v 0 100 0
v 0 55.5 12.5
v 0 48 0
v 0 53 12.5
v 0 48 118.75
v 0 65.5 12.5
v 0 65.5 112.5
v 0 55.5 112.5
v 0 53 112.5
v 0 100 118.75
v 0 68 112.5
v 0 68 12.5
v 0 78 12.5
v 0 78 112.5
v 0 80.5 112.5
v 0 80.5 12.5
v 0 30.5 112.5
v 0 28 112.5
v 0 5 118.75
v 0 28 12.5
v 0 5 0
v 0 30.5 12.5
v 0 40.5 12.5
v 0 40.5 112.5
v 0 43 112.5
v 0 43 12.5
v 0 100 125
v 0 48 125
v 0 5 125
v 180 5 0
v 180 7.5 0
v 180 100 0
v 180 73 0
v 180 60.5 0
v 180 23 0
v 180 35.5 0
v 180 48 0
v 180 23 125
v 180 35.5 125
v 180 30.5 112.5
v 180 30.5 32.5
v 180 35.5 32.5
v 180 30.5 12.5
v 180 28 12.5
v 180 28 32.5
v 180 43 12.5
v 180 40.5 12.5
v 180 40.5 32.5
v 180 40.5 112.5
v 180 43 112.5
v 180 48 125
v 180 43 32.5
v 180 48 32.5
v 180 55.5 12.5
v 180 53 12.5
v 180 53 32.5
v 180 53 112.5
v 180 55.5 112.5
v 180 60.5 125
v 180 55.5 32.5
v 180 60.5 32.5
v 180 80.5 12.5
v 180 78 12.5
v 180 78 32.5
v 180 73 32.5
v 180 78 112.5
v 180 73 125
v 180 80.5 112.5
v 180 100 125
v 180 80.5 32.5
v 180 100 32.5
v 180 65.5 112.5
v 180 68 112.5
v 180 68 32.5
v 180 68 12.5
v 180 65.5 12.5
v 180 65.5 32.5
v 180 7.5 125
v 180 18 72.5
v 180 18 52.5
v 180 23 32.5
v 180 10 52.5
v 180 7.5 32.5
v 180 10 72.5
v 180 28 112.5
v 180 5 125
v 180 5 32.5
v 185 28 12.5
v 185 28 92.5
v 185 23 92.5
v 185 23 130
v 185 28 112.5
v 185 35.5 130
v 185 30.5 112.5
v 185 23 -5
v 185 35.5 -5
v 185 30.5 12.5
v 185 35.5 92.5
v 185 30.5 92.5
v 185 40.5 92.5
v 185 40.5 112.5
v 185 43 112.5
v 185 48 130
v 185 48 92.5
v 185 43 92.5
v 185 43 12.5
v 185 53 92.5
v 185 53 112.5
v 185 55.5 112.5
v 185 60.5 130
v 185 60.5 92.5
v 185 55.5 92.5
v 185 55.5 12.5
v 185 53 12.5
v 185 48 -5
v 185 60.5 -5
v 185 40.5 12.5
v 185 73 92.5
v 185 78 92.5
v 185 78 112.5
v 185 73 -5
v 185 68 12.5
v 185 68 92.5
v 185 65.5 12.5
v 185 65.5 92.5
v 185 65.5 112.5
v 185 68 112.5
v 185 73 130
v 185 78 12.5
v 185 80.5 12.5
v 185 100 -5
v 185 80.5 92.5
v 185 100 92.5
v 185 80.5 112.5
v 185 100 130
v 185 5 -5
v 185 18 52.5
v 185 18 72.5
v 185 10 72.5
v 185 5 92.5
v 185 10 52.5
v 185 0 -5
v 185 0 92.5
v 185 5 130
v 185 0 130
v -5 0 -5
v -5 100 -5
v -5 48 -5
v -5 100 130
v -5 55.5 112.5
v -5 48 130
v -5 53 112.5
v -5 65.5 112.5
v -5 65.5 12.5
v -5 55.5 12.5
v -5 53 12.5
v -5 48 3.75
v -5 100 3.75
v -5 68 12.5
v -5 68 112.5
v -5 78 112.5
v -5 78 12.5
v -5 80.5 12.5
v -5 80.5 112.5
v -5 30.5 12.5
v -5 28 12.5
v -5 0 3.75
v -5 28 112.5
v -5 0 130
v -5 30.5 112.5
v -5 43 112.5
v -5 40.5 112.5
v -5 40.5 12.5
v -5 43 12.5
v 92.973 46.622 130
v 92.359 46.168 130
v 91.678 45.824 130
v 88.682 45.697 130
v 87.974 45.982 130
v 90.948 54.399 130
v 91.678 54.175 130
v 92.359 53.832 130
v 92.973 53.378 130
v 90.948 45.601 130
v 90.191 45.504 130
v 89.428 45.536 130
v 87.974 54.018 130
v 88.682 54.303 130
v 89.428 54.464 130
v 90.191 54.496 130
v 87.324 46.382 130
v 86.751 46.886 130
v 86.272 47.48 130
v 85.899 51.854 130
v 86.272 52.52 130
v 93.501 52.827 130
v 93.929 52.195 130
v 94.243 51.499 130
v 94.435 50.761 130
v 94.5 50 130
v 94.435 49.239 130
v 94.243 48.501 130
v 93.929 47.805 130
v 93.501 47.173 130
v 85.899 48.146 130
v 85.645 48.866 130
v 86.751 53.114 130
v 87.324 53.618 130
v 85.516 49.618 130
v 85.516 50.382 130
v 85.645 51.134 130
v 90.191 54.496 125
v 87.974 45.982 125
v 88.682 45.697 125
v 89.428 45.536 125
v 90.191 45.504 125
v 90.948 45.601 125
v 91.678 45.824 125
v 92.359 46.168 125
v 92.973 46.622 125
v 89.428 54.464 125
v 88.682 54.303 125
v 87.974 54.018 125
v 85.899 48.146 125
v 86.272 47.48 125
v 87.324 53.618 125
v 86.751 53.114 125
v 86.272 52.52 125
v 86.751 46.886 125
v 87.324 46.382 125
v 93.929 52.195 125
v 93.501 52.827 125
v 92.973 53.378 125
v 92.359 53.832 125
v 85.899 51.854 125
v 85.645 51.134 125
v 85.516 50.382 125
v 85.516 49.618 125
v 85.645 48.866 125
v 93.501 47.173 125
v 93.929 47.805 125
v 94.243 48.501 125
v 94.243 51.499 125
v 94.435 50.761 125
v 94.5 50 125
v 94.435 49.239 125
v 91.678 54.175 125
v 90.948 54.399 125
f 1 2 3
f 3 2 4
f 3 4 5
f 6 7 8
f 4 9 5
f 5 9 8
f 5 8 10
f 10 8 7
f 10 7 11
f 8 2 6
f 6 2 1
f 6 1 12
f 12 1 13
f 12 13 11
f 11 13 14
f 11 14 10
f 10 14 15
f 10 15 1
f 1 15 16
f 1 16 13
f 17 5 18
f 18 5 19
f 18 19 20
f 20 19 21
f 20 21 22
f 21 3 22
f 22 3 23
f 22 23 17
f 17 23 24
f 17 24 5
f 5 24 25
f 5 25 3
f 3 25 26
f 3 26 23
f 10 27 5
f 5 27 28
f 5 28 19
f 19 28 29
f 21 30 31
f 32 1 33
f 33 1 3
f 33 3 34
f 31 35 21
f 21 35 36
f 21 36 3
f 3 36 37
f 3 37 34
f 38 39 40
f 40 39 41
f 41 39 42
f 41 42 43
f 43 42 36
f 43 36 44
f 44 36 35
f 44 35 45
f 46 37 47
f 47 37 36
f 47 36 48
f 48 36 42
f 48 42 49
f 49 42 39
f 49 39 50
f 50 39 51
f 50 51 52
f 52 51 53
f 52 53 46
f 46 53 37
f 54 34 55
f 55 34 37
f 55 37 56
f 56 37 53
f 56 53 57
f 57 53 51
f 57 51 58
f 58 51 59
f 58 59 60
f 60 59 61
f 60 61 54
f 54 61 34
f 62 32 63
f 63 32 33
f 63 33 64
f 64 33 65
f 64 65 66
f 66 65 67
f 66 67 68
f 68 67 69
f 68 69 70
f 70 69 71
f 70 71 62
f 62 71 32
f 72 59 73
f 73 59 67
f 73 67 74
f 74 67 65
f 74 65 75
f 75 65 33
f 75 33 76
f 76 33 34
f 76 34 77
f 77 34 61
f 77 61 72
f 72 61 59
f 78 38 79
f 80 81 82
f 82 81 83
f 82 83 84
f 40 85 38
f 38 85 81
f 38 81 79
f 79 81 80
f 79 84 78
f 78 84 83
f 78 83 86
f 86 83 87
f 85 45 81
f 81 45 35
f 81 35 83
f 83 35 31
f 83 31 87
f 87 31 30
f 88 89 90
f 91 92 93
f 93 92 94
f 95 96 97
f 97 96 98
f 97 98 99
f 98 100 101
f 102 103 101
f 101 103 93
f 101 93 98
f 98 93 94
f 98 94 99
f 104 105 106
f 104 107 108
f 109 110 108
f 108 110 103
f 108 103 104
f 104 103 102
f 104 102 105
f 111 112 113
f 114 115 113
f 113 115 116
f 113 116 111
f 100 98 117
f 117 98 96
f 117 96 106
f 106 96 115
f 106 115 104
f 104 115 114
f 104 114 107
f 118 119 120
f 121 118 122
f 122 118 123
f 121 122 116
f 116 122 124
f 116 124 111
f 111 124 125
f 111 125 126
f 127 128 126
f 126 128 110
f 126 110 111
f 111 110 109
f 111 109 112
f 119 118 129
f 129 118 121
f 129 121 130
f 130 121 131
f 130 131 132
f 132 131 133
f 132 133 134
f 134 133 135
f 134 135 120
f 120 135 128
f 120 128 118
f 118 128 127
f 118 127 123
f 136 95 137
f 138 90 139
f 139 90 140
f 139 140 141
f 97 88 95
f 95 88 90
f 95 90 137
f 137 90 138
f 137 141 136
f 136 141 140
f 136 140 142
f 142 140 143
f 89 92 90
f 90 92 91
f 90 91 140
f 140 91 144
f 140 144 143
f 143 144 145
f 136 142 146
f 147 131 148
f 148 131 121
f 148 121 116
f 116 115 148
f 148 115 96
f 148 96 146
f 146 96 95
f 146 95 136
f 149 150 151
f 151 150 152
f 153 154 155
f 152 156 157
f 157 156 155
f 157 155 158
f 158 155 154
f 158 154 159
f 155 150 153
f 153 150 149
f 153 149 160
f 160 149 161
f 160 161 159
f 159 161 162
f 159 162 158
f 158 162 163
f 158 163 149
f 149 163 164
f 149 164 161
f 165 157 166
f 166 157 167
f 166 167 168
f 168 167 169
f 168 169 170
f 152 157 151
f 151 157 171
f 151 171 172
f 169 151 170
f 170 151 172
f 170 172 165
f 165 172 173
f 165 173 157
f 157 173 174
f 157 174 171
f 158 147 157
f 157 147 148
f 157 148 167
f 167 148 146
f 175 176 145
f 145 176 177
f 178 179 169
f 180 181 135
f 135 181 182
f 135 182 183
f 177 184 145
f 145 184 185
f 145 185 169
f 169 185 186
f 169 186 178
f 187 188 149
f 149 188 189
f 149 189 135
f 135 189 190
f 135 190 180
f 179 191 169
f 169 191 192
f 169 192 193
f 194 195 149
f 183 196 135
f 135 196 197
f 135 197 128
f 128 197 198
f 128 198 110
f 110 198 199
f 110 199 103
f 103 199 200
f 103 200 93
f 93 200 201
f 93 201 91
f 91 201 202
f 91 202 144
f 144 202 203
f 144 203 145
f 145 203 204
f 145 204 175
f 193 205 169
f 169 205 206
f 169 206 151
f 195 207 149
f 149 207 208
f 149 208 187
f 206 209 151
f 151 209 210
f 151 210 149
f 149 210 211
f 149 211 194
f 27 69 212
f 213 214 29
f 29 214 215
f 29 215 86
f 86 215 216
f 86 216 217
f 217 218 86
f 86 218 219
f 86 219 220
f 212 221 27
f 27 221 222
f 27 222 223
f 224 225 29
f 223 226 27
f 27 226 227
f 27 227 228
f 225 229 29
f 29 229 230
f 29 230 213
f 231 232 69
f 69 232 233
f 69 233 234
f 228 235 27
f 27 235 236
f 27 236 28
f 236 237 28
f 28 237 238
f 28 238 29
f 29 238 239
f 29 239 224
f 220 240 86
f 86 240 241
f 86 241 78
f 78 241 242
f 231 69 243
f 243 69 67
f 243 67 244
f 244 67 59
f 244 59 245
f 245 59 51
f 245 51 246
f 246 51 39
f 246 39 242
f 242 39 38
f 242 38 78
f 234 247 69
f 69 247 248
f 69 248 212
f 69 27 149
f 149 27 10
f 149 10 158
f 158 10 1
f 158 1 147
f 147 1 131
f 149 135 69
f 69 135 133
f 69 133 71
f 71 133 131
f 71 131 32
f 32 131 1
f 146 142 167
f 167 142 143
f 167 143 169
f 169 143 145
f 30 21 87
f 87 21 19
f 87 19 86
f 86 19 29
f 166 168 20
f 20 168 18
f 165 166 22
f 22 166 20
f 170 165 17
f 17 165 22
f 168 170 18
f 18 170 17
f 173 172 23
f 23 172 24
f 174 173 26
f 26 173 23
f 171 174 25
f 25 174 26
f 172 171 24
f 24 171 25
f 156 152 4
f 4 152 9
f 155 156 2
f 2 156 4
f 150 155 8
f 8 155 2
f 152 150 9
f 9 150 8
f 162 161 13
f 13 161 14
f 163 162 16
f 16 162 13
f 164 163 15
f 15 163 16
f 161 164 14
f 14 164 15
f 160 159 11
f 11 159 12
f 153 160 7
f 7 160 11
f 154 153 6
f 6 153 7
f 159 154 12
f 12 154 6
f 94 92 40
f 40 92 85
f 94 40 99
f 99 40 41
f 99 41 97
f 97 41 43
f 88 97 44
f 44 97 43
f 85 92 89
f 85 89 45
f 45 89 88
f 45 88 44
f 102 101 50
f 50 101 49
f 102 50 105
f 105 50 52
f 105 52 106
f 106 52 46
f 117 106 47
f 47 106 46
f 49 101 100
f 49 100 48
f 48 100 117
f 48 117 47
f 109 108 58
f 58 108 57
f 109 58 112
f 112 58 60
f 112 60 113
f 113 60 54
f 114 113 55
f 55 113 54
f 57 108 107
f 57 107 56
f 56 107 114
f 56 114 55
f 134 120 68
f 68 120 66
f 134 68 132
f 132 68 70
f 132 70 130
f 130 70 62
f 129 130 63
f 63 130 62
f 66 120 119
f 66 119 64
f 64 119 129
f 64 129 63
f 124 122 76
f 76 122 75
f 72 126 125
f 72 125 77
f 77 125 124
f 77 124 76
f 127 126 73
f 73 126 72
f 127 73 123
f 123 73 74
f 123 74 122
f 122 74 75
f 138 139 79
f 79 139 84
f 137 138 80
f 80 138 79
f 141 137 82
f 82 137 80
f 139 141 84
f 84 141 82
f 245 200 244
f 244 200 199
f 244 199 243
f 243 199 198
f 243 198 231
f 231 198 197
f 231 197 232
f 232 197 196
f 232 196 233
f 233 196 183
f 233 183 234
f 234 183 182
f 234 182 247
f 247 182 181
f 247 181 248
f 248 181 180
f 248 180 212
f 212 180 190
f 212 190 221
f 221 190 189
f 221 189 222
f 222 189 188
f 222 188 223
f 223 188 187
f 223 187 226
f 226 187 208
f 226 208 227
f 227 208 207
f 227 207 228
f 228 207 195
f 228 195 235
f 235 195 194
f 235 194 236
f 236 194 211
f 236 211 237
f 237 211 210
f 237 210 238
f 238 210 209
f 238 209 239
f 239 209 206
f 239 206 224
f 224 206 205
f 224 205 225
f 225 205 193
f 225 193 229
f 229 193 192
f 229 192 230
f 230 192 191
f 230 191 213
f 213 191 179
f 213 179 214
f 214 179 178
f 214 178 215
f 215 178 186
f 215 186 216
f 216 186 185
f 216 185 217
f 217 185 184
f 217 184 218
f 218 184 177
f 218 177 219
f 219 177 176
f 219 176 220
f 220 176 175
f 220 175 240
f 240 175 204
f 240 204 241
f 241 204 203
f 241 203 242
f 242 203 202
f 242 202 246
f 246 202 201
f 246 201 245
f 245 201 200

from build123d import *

# Parameters (mm, degrees)
SKETCH1_W           = 180
SKETCH1_H           = 125
BOSS_EXTRUDE1_DEPTH = 100
SKETCH2_W           = 180
SKETCH2_H           = 125
BOSS_EXTRUDE2_DEPTH = 5
SKETCH3_W           = 100
SKETCH3_H           = 2.5
CUT_EXTRUDE1_DEPTH  = 200
SKETCH4_W           = 20
SKETCH4_H           = 8
BOSS_EXTRUDE4_DEPTH = 5
SKETCH5_R           = 4.5
CUT_EXTRUDE2_DEPTH  = 5


with BuildPart() as part:
    # Sketch1 → Boss-Extrude1 (new body)
    with BuildSketch(Plane(origin=(0, 0, 0), x_dir=(1, 0, 0), z_dir=(0, 1, 0))):
        Polygon((185, 5), (0, 5), (-5, 5), (-5, -130), (185, -130), align=None)
        with Locations((90, -62.5)):
            Rectangle(SKETCH1_W, SKETCH1_H, mode=Mode.SUBTRACT)
    extrude(amount=BOSS_EXTRUDE1_DEPTH)

    # Sketch2 → Boss-Extrude2 (add)
    with BuildSketch(Plane(origin=(0, 0, 0), x_dir=(-1, 0, 0), z_dir=(0, -1, 0))):
        with Locations((-90, -62.5)):
            Rectangle(SKETCH2_W, SKETCH2_H)
    extrude(amount=-BOSS_EXTRUDE2_DEPTH)

    # Sketch3 → Cut-Extrude1 (cut)
    with BuildSketch(Plane(origin=(185, 0, 0), x_dir=(0, 0, -1), z_dir=(1, 0, 0))):
        Polygon((-62.5, 10), (-52.5, 10), (-52.5, 18), (-72.5, 18), (-72.5, 10), align=None)
        Polygon((-62.5, 28), (-12.5, 28), (-12.5, 30.5), (-112.5, 30.5), (-112.5, 28), align=None)
        with Locations((-62.5, 41.75)):
            Rectangle(SKETCH3_W, SKETCH3_H)
        with Locations((-62.5, 54.25)):
            Rectangle(SKETCH3_W, SKETCH3_H)
        with Locations((-62.5, 66.75)):
            Rectangle(SKETCH3_W, SKETCH3_H)
        with Locations((-62.5, 79.25)):
            Rectangle(SKETCH3_W, SKETCH3_H)
    extrude(amount=-CUT_EXTRUDE1_DEPTH, mode=Mode.SUBTRACT)

    # Sketch4 → Boss-Extrude4 (add)
    with BuildSketch(Plane.ZY.offset(5)):
        with Locations((62.5, 14)):
            Rectangle(SKETCH4_W, SKETCH4_H)
    extrude(amount=-BOSS_EXTRUDE4_DEPTH)

    # Sketch5 → Cut-Extrude2 (cut)
    with BuildSketch(Plane.XY.offset(130)):
        with Locations((90, 50)):
            Circle(SKETCH5_R)
    extrude(amount=-CUT_EXTRUDE2_DEPTH, mode=Mode.SUBTRACT)


solid = part.part
